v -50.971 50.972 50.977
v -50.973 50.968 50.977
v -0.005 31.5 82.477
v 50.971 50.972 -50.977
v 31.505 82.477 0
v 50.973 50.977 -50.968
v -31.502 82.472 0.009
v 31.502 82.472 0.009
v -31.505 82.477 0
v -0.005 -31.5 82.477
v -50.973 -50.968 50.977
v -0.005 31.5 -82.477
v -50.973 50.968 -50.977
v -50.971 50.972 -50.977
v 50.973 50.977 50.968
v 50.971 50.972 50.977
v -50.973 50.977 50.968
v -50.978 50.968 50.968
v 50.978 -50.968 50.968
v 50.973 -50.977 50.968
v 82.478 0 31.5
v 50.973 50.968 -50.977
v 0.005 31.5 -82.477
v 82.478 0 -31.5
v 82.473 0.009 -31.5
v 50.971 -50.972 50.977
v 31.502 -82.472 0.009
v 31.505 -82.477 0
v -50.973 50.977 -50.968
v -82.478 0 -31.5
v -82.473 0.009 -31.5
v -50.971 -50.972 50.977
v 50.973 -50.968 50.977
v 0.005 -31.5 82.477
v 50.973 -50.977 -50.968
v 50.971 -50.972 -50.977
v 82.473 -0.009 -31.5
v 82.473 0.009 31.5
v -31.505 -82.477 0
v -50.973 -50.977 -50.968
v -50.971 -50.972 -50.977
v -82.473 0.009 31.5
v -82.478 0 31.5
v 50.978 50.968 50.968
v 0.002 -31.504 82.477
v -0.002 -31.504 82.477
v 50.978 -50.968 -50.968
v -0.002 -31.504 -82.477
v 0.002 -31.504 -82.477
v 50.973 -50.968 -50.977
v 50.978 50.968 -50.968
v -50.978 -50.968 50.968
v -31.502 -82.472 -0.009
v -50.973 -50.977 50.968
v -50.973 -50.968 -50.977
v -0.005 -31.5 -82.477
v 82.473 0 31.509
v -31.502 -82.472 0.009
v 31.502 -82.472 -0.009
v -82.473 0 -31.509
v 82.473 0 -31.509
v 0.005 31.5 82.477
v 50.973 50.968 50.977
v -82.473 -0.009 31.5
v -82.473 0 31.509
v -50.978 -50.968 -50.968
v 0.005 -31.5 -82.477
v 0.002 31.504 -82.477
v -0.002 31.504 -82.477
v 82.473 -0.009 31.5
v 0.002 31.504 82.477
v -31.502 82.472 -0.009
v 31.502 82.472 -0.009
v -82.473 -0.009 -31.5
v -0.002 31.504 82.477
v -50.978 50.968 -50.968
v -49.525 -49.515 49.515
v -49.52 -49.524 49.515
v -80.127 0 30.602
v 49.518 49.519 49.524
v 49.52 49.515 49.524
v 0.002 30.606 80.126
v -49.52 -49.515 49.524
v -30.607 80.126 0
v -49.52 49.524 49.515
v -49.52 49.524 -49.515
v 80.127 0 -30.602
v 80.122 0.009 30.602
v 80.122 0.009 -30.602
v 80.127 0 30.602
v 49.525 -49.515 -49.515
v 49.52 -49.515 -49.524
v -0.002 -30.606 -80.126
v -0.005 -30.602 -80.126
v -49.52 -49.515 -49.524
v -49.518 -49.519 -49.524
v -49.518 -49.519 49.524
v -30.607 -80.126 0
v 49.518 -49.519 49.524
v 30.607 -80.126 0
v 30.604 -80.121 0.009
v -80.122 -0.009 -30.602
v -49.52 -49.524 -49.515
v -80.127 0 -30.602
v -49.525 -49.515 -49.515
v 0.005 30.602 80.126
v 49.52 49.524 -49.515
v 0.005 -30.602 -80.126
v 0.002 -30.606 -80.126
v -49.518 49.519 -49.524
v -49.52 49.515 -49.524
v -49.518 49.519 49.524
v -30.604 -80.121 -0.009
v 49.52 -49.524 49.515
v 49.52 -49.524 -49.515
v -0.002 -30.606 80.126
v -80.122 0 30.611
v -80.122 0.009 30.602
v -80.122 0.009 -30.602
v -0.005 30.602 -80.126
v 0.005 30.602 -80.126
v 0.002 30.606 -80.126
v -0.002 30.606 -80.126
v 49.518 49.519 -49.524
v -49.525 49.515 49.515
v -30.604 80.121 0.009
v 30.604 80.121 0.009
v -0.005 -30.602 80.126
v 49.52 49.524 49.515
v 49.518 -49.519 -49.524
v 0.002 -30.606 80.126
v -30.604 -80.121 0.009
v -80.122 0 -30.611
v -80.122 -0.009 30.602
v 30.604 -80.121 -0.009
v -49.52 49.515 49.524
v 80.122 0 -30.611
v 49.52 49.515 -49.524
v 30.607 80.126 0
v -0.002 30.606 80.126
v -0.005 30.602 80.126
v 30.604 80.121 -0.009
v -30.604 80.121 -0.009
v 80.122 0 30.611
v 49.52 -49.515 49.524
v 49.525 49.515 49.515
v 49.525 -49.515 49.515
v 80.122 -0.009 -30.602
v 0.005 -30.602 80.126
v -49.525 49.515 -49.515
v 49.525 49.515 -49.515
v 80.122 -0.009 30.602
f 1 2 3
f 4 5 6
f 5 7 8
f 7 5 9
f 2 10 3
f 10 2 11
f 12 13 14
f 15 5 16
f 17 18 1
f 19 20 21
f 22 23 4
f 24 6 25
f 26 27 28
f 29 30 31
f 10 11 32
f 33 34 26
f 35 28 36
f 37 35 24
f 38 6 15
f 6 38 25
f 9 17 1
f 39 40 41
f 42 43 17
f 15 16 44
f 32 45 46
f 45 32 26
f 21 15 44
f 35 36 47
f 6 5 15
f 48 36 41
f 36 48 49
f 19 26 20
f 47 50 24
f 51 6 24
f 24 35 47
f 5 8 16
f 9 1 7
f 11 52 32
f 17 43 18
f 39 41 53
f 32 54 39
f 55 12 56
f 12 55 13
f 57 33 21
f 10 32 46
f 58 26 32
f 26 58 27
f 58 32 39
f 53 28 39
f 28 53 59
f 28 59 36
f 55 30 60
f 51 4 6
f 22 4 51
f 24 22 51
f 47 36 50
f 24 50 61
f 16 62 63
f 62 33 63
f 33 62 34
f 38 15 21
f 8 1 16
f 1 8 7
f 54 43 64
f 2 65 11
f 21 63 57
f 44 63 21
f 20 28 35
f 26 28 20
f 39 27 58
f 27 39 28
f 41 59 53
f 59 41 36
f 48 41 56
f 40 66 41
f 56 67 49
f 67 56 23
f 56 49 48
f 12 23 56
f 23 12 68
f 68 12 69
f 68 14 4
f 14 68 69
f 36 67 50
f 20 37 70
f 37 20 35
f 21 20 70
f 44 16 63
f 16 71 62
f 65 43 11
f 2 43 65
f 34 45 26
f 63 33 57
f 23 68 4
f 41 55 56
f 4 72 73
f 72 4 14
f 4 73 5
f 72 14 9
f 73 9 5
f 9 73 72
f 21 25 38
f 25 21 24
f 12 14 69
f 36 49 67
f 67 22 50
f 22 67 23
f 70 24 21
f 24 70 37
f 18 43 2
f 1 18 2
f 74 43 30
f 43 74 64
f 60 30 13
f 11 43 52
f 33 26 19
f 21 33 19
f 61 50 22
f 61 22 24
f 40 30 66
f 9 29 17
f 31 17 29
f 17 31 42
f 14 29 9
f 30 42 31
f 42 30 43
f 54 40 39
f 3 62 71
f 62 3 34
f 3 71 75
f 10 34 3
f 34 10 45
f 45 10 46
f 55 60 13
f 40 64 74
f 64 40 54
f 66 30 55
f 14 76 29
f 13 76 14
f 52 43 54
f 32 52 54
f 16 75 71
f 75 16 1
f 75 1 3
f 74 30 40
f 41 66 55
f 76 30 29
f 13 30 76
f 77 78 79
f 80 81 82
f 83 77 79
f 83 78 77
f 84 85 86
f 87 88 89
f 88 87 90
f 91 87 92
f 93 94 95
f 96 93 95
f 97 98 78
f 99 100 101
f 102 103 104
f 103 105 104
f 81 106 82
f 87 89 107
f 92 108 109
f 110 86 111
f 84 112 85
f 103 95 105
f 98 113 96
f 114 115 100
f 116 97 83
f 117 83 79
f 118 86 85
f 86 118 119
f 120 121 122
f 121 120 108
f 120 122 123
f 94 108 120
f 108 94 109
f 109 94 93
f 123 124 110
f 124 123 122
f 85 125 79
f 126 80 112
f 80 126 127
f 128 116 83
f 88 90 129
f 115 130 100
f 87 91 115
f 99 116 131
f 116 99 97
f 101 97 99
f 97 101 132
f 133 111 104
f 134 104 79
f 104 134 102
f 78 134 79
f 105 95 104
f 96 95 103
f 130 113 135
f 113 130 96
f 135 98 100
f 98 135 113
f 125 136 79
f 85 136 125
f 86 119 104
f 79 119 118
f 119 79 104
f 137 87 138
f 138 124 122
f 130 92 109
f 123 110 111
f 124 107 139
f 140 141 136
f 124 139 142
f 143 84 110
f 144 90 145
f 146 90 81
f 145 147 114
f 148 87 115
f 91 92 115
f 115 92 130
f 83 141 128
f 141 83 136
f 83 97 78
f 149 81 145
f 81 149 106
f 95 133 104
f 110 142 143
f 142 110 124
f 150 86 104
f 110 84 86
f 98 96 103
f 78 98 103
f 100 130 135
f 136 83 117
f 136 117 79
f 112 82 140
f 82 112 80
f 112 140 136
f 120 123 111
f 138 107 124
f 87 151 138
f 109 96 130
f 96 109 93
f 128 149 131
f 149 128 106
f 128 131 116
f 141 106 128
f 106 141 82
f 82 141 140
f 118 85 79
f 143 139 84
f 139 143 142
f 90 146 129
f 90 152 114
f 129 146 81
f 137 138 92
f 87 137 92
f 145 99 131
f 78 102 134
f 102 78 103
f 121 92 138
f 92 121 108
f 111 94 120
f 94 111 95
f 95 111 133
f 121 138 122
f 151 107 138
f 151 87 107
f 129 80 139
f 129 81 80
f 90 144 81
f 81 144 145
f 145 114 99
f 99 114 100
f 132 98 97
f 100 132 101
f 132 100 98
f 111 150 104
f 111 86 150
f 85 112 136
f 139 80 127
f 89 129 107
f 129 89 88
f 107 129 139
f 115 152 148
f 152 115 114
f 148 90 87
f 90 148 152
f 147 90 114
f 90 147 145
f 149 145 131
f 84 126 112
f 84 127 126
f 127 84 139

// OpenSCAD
// body_scaled.scad
// 1:3 正十二面体空壳 (a=73.3mm)，12 个五边形面各留按比例缩小的圆形插座凹位
// 底面那个改为底座定位孔
// 客户原话：1:3 整机空壳（正十二面体，a≈73mm，相对面间距约 163mm），壁厚 2mm

// ============ 参数 ============
a = 63; // 边长 (mm) — 取 63 使 bbox≈165mm（150-175 区间内）   // 边长 (mm) — 取 63 使 bbox≈165mm（150-175 区间内）
wall_t           = 2;      // 壁厚 (mm) — 题面

// 1:1 插座 30mm → 1:3 ≈ 10mm
socket_d_full    = 30;
socket_d         = socket_d_full * (a / 220);  // ≈ 10mm
socket_depth     = wall_t + 1;                  // 凹位稍深于壁厚，便于插件插入

magnet_d_full    = 8;
magnet_d         = magnet_d_full * (a / 220); // ≈ 2.67mm
magnet_radius    = 12 * (a / 220);            // ≈ 4mm
magnet_depth     = 1.5;

// 底座定位孔（替换底面插座）
base_pilot_d     = 6;       // 底座定位孔直径
base_pilot_depth = 3;

phi = (1 + sqrt(5)) / 2;

$fn = 64;

// ============ 几何（沿用客户验证过的骨架） ============
function dodecahedron_pts(k) = [
    for (x = [-1, 1], y = [-1, 1], z = [-1, 1]) [x, y, z] * k,
    for (x = [-1, 1], y = [-1, 1])             [0, x / phi, y * phi] * k,
    for (x = [-1, 1], y = [-1, 1])             [x / phi, y * phi, 0] * k,
    for (x = [-1, 1], y = [-1, 1])             [x * phi, 0, y / phi] * k
];

module dodeca_hull(k) {
    hull() for (p = dodecahedron_pts(k))
        translate(p) sphere(0.01, $fn = 6);
}

// 12 个面法向（黄金比例坐标）
normals = [
    [0,  1,  phi], [0, -1,  phi], [0,  1, -phi], [0, -1, -phi],
    [1,  phi, 0], [-1,  phi, 0], [1, -phi, 0], [-1, -phi, 0],
    [phi, 0,  1], [-phi, 0,  1], [phi, 0, -1], [-phi, 0, -1]
];

module shell(a, t) {
    k = a / (2 / phi);
    ri = a * 1.1135;
    difference() {
        dodeca_hull(k);
        dodeca_hull(k * (ri - t) / ri);
    }
}

// 在某个法向 nn 上定位一个子体（把 z 轴对齐到 nn，沿 nn 平移 ri 到面中心）
module on_face(nn, a) {
    n = nn / norm(nn);
    rotate([0, acos(n[2]), atan2(n[1], n[0])])
        translate([0, 0, a * 1.1135])
            children();
}

// ============ 在 12 个面上挖插座（底面换定位孔） ============
module all_face_features() {
    ri_face = a * 1.1135;
    // 选法向 z 分量最小的那一面作为"底面"（指向 -z）
    bottom_idx = 0;
    bottom_n = normals[0];
    bottom_z = bottom_n[2];
    for (i = [0:11]) {
        if (normals[i][2] < bottom_z) {
            bottom_z = normals[i][2];
            bottom_idx = i;
        }
    }

    for (i = [0:11]) {
        n = normals[i];
        // 用 hull-of-cubes + scale 来确保 difference 能切到外壁
        if (i == bottom_idx) {
            // 底面：底座定位孔（贯穿或浅凹）
            on_face(n, a)
                translate([0, 0, -base_pilot_depth])
                    cylinder(d = base_pilot_d, h = base_pilot_depth + 1, $fn = 32);
        } else {
            // 普通面：圆形插座凹位
            on_face(n, a)
                translate([0, 0, -socket_depth])
                    cylinder(d = socket_d, h = socket_depth + 1, $fn = 32);
        }
    }
}

// ============ 输出 ============
difference() {
    shell(a, wall_t);
    all_face_features();
}
